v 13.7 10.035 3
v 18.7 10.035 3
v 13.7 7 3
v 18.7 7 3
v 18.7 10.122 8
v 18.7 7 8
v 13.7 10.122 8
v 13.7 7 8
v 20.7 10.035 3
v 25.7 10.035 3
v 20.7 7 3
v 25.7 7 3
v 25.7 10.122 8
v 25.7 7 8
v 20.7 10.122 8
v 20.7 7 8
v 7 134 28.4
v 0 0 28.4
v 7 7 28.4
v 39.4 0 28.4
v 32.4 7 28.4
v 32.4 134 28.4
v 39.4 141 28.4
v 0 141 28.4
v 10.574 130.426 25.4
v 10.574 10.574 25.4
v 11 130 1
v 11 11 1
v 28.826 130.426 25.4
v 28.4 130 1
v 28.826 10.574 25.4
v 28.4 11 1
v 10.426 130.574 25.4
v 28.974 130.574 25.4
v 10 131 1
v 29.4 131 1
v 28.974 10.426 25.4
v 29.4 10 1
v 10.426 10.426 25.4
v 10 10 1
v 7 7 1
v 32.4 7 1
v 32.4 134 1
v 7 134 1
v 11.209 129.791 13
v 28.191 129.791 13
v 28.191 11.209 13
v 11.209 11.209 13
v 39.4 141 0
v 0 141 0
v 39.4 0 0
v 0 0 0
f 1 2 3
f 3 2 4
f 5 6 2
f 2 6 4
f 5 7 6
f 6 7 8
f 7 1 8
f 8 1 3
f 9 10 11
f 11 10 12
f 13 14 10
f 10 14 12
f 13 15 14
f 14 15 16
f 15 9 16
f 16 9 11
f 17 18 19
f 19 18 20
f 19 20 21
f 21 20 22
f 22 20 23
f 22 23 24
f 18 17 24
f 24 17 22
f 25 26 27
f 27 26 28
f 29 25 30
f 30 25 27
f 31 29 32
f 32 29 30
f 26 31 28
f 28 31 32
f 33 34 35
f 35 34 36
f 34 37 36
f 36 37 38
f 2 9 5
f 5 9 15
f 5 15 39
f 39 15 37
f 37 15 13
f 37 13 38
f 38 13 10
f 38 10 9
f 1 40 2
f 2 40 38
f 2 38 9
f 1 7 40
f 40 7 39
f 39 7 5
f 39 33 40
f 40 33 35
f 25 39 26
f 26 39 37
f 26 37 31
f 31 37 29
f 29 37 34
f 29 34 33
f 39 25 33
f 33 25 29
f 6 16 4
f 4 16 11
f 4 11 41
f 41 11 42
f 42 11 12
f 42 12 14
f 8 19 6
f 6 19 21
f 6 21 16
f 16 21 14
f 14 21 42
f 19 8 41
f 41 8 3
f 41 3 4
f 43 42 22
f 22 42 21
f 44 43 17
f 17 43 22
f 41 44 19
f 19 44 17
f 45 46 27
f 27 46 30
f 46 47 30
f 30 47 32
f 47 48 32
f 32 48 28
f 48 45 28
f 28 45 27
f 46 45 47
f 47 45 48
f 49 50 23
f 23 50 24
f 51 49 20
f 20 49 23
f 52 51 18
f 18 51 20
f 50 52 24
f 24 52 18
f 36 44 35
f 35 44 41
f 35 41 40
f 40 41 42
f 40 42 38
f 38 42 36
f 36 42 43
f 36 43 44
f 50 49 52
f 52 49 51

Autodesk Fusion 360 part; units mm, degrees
sketch "Sketch1" plane through (0, 0, 0) normal (0, 0, 1) x (1, 0, 0)
  line L0 (0, 0) -> (39.4, 0)
  line L1 (39.4, 0) -> (39.4, 141)
  line L2 (39.4, 141) -> (0, 141)
  line L3 (0, 141) -> (0, 0)
  line L4 (7, 7) -> (32.4, 7)
  line L5 (32.4, 7) -> (32.4, 134)
  line L6 (32.4, 134) -> (7, 134)
  line L7 (7, 134) -> (7, 7)
  line L8 (10, 10) -> (29.4, 10)
  line L9 (29.4, 10) -> (29.4, 131)
  line L10 (29.4, 131) -> (10, 131)
  line L11 (10, 131) -> (10, 10)
  line L12 (11, 11) -> (28.4, 11)
  line L13 (28.4, 11) -> (28.4, 130)
  line L14 (28.4, 130) -> (11, 130)
  line L15 (11, 130) -> (11, 11)
  dimension "d1" = 39.4
  dimension "d2" = 141
  dimension "d3" = 25.4
  dimension "d4" = 127
  dimension "d5" = 7
  dimension "d6" = 7
  dimension "d7" = 19.4
  dimension "d8" = 121
  dimension "d9" = 3
  dimension "d10" = 3
  dimension "d11" = 17.4
  dimension "d12" = 119
  dimension "d13" = 1
  dimension "d14" = 1
extrude "Extrude1" add sketch "Sketch1" along normal blind 1 contours L0 L1 L2 L3 | L4 L5 L6 L7 | L8 L9 L10 L11 | L12 L13 L14 L15
sketch "Sketch2" plane through (0, 0, 1) normal (0, 0, 1) x (-1, 0, 0)
  line L0 (0, -141) -> (0, 0)
  line L1 (0, 0) -> (-39.4, 0)
  line L2 (-39.4, 0) -> (-39.4, -141)
  line L3 (-39.4, -141) -> (0, -141)
  line L4 (-7, -7) -> (-32.4, -7)
  line L5 (-32.4, -7) -> (-32.4, -134)
  line L6 (-32.4, -134) -> (-7, -134)
  line L7 (-7, -134) -> (-7, -7)
  line L8 (-10, -10) -> (-29.4, -10)
  line L9 (-29.4, -10) -> (-29.4, -131)
  line L10 (-29.4, -131) -> (-10, -131)
  line L11 (-10, -131) -> (-10, -10)
  line L12 (-11, -11) -> (-28.4, -11)
  line L13 (-28.4, -11) -> (-28.4, -130)
  line L14 (-28.4, -130) -> (-11, -130)
  line L15 (-11, -130) -> (-11, -11)
  dimension "d17" = 25.4
  dimension "d18" = 127
  dimension "d19" = 19.4
  dimension "d20" = 121
  dimension "d21" = 17.4
  dimension "d22" = 119
  dimension "d23" = 7
  dimension "d24" = 7
  dimension "d25" = 3
  dimension "d26" = 3
  dimension "d27" = 1
  dimension "d28" = 1
extrude "Extrude2" add sketch "Sketch2" along normal blind 12 draft -1 contours L12 L13 L14 L15
sketch "Sketch3" plane through (0, 0, 1) normal (0, 0, 1) x (-1, 0, 0)
  line L0 (-11, -130) -> (-28.4, -130)
  line L1 (-28.4, -130) -> (-28.4, -11)
  line L2 (-28.4, -11) -> (-11, -11)
  line L3 (-11, -11) -> (-11, -130)
  line L4 (0, -141) -> (0, 0)
  line L5 (0, 0) -> (-39.4, 0)
  line L6 (-39.4, 0) -> (-39.4, -141)
  line L7 (-39.4, -141) -> (0, -141)
  line L8 (-7, -7) -> (-32.4, -7)
  line L9 (-32.4, -7) -> (-32.4, -134)
  line L10 (-32.4, -134) -> (-7, -134)
  line L11 (-7, -134) -> (-7, -7)
  dimension "d31" = 25.4
  dimension "d32" = 127
  dimension "d33" = 7
  dimension "d34" = 7
extrude "Extrude3" add sketch "Sketch3" along normal blind 25.4 contours L4 L5 L6 L7
sketch "Sketch4" plane through (0, 0, 1) normal (0, 0, 1) x (-1, 0, 0)
  line L0 (-7, -7) -> (-32.4, -7)
  line L1 (-32.4, -7) -> (-32.4, -134)
  line L2 (-32.4, -134) -> (-7, -134)
  line L3 (-7, -134) -> (-7, -7)
  line L4 (-11, -130) -> (-28.4, -130)
  line L5 (-28.4, -130) -> (-28.4, -11)
  line L6 (-28.4, -11) -> (-11, -11)
  line L7 (-11, -11) -> (-11, -130)
  line L8 (-10, -10) -> (-29.4, -10)
  line L9 (-29.4, -10) -> (-29.4, -131)
  line L10 (-29.4, -131) -> (-10, -131)
  line L11 (-10, -131) -> (-10, -10)
  dimension "d37" = 19.4
  dimension "d38" = 121
  dimension "d39" = 3
  dimension "d40" = 3
extrude "Extrude4" add sketch "Sketch4" along normal blind 24.4 draft -1 contours L8 L9 L10 L11
extrude "Extrude5" add 1 faces at (2.3333, 49.3333, 26.4) along direction (0, 0, 1) blind 2
sketch "Sketch5" plane through (0, 9.9795, -0.1742) normal (0, -0.9998, 0.0175) x (1, 0, 0)
  line L0 (28.9741, 25.5781) -> (10.4259, 25.5781)
  line L1 (10.4259, 25.5781) -> (10, 1.1744)
  line L2 (10, 1.1744) -> (29.4, 1.1744)
  line L3 (29.4, 1.1744) -> (28.9741, 25.5781)
sketch "Sketch6" plane through (0, 7, 0) normal (0, 1, 0) x (-1, 0, 0)
  line L0 (-32.4, 1) -> (-7, 1)
  line L1 (-7, 1) -> (-7, 28.4)
  line L2 (-7, 28.4) -> (-32.4, 28.4)
  line L3 (-32.4, 28.4) -> (-32.4, 1)
  line L4 (-25.7, 8) -> (-20.7, 8)
  line L5 (-20.7, 8) -> (-20.7, 3)
  line L6 (-20.7, 3) -> (-25.7, 3)
  line L7 (-25.7, 3) -> (-25.7, 8)
  line L8 (-19.7, 28.4) -> (-19.7, -1.222)
  line L9 (-10, 1) -> (-29.4, 1)
  dimension "d45" = 5
  dimension "d46" = 5
  dimension "d47" = 1
  dimension "d48" = 2
extrude "Extrude6" add sketch "Sketch6" along normal blind 3.5 contours L4 L5 L6 L7
sketch "Sketch7" plane through (0, 7, 0) normal (0, 1, 0) x (-1, 0, 0)
  line L0 (-25.7, 3) -> (-25.7, 8)
  line L1 (-25.7, 8) -> (-20.7, 8)
  line L2 (-20.7, 8) -> (-20.7, 3)
  line L3 (-20.7, 3) -> (-25.7, 3)
  line L4 (-32.4, 1) -> (-7, 1)
  line L5 (-7, 1) -> (-7, 28.4)
  line L6 (-7, 28.4) -> (-32.4, 28.4)
  line L7 (-32.4, 28.4) -> (-32.4, 1)
  line L8 (-19.7, 28.4) -> (-19.7, 1)
  line L9 (-18.7, 8) -> (-13.7, 8)
  line L10 (-13.7, 8) -> (-13.7, 3)
  line L11 (-13.7, 3) -> (-18.7, 3)
  line L12 (-18.7, 3) -> (-18.7, 8)
  line L13 (-10, 1) -> (-29.4, 1)
  dimension "d51" = 5
  dimension "d52" = 5
  dimension "d53" = 1
  dimension "d54" = 2
extrude "Extrude7" add sketch "Sketch7" along normal blind 3.5 contours L9 L10 L11 L12
